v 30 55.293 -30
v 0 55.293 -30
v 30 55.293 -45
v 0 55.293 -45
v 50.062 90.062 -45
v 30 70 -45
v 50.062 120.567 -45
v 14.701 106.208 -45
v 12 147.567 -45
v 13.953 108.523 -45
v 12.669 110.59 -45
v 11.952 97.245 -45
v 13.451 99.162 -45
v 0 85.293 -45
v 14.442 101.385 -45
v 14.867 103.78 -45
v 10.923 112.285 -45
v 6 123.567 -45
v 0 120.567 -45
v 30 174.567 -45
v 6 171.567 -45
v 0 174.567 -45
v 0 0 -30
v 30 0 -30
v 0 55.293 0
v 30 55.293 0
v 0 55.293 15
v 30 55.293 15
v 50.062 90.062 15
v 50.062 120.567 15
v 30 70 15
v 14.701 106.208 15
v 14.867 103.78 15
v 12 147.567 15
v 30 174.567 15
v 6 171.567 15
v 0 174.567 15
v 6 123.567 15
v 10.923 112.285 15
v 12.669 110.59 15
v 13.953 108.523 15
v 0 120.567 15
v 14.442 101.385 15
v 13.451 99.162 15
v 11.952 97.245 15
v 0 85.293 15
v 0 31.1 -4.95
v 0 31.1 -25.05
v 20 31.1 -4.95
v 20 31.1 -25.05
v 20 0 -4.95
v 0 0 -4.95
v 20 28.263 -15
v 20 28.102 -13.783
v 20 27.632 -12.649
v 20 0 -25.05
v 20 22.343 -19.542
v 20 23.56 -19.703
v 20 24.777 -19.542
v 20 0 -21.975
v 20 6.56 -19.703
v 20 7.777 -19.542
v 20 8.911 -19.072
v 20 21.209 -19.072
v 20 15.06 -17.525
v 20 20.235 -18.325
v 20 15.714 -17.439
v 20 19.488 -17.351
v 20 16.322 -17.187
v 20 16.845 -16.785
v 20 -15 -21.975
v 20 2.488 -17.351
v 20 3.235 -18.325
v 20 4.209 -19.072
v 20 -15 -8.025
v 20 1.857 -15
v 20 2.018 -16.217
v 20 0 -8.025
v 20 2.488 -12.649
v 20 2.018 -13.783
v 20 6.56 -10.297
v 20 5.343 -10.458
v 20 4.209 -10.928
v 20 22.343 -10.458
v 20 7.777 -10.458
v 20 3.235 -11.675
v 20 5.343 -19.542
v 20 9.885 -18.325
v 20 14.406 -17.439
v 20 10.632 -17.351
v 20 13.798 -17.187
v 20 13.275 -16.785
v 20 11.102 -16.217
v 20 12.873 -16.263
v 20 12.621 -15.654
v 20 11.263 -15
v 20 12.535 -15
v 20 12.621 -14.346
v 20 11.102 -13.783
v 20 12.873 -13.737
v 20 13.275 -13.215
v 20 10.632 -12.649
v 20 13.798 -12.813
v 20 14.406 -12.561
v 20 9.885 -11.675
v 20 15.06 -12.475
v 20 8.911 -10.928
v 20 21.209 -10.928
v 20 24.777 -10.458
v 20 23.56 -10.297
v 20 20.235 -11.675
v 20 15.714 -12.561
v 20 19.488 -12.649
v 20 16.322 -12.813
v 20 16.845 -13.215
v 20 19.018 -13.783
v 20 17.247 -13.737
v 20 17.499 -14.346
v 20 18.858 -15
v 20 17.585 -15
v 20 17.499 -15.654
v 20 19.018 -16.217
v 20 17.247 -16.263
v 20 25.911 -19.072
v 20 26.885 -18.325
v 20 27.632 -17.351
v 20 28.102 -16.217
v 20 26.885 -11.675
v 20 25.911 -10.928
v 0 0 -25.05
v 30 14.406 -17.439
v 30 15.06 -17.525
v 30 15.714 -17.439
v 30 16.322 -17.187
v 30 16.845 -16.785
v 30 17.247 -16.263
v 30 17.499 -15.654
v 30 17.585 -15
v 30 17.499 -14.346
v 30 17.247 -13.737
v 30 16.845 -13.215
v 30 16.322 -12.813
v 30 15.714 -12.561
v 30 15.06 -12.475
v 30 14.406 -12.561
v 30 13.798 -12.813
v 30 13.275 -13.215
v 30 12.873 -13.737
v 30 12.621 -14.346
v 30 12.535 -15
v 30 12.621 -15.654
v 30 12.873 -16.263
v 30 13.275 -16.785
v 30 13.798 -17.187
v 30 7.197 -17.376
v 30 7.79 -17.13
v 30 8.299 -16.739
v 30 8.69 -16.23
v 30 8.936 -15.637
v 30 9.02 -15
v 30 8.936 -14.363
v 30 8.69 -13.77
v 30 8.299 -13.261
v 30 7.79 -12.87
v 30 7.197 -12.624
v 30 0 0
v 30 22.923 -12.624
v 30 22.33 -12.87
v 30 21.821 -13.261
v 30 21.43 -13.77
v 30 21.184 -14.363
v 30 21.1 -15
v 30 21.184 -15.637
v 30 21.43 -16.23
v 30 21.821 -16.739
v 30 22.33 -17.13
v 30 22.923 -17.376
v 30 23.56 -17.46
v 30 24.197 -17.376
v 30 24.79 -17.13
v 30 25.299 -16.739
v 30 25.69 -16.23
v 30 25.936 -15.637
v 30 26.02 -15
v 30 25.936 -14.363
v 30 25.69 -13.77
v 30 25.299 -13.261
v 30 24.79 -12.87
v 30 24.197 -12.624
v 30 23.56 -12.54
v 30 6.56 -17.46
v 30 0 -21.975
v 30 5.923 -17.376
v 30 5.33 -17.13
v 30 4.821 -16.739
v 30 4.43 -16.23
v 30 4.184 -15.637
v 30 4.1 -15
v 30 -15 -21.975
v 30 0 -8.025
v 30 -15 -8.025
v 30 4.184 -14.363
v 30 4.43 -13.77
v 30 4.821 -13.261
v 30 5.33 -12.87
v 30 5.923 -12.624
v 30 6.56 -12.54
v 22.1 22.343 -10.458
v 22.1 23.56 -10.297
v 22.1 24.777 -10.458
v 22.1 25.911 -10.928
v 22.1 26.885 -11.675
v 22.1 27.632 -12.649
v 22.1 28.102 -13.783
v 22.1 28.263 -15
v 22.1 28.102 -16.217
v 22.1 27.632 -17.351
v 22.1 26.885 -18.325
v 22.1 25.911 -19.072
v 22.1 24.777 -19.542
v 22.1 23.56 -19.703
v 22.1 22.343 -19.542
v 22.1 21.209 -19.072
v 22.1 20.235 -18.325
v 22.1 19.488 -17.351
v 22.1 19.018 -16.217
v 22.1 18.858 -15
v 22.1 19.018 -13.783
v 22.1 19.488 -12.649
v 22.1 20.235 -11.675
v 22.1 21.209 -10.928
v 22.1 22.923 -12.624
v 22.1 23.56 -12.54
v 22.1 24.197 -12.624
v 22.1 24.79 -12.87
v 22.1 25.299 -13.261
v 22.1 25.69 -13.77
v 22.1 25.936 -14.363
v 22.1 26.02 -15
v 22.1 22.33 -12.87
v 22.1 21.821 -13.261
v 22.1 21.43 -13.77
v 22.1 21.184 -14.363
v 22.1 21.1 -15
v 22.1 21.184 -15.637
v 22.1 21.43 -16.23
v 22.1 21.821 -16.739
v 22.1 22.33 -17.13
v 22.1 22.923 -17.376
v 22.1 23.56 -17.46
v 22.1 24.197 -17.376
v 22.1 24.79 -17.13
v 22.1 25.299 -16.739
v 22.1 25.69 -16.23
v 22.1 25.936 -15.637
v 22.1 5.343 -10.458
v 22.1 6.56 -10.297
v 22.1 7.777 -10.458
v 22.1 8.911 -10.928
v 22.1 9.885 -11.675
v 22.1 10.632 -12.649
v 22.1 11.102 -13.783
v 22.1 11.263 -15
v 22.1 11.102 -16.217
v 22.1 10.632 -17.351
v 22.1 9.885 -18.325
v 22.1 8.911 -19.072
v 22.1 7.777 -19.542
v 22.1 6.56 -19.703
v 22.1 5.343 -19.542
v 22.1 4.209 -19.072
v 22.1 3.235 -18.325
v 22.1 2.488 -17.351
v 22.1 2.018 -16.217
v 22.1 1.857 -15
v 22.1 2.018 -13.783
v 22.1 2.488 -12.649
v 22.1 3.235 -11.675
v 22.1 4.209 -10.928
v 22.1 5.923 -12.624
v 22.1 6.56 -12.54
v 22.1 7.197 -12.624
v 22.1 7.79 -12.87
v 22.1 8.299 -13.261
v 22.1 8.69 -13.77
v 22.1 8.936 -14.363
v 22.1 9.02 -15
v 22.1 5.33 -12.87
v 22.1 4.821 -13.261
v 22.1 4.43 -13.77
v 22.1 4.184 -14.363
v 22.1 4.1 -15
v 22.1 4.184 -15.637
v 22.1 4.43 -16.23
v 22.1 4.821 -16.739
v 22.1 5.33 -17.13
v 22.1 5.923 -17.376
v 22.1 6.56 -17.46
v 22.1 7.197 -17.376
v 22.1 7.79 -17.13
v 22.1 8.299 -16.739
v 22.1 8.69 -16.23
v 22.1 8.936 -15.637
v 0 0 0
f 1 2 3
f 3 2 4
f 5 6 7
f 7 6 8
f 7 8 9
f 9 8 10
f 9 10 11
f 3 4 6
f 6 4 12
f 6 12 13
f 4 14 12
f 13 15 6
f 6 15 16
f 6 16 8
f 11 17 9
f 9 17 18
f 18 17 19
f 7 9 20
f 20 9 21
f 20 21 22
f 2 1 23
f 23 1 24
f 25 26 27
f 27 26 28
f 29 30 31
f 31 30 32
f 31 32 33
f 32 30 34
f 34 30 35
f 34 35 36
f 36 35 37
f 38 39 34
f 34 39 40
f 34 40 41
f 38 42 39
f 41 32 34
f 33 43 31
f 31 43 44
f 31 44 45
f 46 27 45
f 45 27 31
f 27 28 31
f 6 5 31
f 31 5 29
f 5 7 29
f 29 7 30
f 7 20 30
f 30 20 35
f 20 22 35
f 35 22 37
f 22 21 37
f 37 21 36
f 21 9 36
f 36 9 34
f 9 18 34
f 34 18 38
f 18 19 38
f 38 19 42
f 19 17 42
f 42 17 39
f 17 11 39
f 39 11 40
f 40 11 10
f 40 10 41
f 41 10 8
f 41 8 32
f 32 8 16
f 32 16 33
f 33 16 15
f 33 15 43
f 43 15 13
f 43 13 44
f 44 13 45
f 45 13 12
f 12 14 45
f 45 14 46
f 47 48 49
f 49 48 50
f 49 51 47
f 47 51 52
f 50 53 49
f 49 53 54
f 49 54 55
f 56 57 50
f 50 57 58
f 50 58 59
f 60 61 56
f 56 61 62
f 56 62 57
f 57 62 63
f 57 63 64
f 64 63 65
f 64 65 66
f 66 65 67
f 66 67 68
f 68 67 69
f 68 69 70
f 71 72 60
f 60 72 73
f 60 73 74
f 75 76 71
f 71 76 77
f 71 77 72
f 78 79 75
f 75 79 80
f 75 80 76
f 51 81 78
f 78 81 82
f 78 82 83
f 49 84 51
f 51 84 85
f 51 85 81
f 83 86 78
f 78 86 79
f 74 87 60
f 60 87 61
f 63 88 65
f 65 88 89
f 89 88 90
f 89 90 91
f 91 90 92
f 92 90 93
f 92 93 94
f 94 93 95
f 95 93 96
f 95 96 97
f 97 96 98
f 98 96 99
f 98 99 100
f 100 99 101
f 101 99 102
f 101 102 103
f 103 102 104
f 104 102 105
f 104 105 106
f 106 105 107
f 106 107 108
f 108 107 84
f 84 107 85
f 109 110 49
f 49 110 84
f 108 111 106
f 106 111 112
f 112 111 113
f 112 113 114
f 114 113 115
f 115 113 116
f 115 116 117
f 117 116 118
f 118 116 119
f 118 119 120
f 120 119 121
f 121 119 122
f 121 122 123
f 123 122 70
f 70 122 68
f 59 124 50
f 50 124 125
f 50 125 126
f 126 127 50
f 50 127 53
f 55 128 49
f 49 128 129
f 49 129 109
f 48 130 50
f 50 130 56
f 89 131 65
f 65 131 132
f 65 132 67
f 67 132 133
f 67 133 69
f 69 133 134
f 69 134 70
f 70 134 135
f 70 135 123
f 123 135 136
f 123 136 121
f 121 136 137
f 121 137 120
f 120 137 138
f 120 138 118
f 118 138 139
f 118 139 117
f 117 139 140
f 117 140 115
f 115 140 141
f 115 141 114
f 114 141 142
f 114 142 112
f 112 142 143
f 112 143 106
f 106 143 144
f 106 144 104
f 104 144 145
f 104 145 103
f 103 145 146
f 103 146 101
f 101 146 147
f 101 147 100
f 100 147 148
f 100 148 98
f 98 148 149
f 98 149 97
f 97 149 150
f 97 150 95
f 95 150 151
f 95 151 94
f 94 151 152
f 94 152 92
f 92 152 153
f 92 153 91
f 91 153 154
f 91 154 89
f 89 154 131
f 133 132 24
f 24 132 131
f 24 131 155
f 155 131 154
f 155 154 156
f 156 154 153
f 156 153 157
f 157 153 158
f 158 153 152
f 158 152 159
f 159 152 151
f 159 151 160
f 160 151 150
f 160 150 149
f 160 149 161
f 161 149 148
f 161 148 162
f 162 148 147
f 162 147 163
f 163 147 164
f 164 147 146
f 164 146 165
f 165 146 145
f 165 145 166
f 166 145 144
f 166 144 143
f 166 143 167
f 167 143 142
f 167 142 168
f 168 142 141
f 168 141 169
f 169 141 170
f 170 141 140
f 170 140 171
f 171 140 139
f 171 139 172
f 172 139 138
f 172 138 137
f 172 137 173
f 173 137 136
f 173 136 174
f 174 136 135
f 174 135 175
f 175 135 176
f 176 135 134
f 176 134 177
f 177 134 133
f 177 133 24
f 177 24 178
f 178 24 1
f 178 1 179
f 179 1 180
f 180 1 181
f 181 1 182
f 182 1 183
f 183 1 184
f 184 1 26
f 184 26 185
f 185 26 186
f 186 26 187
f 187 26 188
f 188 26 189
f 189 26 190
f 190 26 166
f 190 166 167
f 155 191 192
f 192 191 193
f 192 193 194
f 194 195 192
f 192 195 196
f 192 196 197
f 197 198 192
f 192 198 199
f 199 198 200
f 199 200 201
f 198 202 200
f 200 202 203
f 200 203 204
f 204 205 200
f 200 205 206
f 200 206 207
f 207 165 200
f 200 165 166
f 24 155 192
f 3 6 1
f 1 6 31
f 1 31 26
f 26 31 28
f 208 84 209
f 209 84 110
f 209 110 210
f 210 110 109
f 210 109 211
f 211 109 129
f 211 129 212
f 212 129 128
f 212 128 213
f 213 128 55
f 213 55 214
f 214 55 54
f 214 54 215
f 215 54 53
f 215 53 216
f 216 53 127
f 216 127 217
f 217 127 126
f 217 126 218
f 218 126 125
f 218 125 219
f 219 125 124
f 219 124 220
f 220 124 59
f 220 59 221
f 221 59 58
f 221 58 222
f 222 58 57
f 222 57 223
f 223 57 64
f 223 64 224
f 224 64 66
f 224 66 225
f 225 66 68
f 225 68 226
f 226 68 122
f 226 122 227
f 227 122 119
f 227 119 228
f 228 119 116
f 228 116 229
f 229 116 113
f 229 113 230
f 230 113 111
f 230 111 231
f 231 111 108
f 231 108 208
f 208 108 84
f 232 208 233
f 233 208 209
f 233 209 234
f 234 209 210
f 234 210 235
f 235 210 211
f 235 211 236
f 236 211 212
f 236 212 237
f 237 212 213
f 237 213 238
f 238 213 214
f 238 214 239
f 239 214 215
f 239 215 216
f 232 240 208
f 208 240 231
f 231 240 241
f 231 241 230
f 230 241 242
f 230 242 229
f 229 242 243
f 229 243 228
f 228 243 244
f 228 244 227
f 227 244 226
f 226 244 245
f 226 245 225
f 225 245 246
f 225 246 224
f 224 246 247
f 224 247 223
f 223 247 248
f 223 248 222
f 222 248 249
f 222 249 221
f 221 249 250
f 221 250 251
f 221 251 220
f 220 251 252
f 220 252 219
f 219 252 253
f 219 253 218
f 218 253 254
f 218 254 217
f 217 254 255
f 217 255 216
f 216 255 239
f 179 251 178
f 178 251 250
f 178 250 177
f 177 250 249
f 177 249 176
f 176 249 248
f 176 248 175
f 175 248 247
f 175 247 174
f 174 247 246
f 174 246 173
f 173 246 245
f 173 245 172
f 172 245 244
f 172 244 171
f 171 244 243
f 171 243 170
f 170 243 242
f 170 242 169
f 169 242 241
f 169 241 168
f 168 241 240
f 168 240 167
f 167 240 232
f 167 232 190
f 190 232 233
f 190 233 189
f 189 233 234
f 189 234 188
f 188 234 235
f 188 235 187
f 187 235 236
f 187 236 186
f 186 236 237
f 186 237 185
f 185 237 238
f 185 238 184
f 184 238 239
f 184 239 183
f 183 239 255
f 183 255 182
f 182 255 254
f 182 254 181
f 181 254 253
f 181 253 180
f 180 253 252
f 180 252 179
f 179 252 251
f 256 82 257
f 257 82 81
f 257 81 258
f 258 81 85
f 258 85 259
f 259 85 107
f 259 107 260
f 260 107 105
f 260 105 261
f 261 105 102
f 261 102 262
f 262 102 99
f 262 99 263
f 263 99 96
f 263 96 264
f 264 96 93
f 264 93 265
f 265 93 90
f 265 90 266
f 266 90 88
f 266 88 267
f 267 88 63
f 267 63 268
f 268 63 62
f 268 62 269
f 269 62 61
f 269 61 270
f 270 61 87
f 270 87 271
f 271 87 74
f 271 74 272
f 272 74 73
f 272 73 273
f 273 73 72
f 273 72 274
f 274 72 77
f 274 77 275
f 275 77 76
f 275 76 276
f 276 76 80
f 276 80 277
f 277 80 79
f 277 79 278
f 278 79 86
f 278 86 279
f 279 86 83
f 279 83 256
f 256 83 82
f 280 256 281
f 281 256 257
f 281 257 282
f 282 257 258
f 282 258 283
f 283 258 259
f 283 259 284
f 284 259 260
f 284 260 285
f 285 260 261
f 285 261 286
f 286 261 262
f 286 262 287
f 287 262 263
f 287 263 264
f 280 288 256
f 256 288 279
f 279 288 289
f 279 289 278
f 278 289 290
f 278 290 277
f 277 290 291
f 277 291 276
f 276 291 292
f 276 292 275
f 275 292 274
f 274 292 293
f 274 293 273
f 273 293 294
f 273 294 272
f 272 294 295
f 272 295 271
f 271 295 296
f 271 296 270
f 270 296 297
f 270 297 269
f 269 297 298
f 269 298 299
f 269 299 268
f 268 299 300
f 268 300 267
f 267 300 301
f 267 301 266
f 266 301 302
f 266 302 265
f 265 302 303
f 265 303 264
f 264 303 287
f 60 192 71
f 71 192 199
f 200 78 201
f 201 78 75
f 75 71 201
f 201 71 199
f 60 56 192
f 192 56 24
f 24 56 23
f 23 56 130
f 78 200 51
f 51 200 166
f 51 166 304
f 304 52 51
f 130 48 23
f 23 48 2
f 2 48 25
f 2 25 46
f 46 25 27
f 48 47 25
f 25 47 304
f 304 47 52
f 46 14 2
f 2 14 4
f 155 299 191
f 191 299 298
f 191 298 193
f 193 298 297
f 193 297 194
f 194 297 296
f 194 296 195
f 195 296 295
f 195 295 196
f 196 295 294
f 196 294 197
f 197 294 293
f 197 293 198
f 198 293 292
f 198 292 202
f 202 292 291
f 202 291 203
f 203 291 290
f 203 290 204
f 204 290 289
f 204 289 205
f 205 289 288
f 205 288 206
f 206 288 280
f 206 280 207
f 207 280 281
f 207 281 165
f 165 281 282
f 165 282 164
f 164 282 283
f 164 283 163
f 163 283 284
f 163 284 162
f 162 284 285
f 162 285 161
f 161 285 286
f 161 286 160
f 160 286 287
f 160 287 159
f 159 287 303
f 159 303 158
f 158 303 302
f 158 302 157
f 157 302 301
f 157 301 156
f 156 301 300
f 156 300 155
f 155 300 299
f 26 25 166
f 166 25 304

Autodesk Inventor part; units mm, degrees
ref_plane "YZ Plane" through (0, 0, 0) normal (1, 0, 0) x (0, 1, 0)
ref_plane "XZ Plane" through (0, 0, 0) normal (0, 1, 0) x (-1, 0, 0)
sketch "Sketch1" plane through (0, 0, 0) normal (0, 0, 1) x (1, 0, 0)
  line L0 (0, 0) -> (25, 0)
  line L1 (25, 0) -> (25, 40)
  line L2 (25, 40) -> (0, 40)
  line L3 (0, 40) -> (0, 0)
  dimension "d1" = 25
  dimension "d2" = 40
  dimension "d3" = 25
extrude "Extrusion1" add sketch "Sketch1" against normal blind 30
sketch "Sketch2" plane through (25, 0, 0) normal (1, 0, 0) x (0, 0, -1)
  line L0 (0, 0) -> (30, 0) projected
  circle A0 centre (15, 6.56) radius 2.46
extrude "Extrusion2" cut sketch "Sketch2" against normal blind 30
sketch "Sketch3" plane through (0, 0, 0) normal (-1, 0, 0) x (0, 0, 1)
  line L0 (0, 0) -> (-30, 0) projected
  line L1 (-25.05, 0) -> (-4.95, 0)
  line L2 (-4.95, 0) -> (-4.95, 33.12)
  line L3 (-4.95, 33.12) -> (-25.05, 33.12)
  line L4 (-25.05, 33.12) -> (-25.05, 0)
  dimension "d11" = 20.1
extrude "Extrusion3" cut sketch "Sketch3" against normal blind 20
sketch "Sketch4" plane through (0, 0, 0) normal (0, -1, 0) x (1, 0, 0)
  line L0 (20, -4.95) -> (20, -25.05) projected
  line L1 (20, -15) -> (25, -15)
  line L2 (25, 0) -> (25, -30) projected
  line L3 (20, -8.025) -> (25, -8.025)
  line L4 (25, -8.025) -> (25, -21.975)
  line L5 (25, -21.975) -> (20, -21.975)
  line L6 (20, -21.975) -> (20, -8.025)
  line L7 (20, -8.025) -> (25, -21.975) construction
  line L8 (25, -8.025) -> (20, -21.975) construction
  line L9 (25, -12.54) -> (25, -17.46) projected
  point P0 (0, 0)
  point P1 (22.5, -15)
  dimension "d14" = 13.95
extrude "Extrusion4" add sketch "Sketch4" along normal blind 15
sketch "Sketch5" plane through (20, 0, 0) normal (-1, 0, 0) x (0, 0, 1)
  circle A0 centre (-15, 6.56) radius 2.46 projected
  circle A1 centre (-15, 6.56) radius 4.7025
  circle A2 centre (-15, 6.56) radius 2.46 projected
  circle A3 centre (-15, 6.56) radius 2.46
  point P0 (0, 0)
  dimension "d17" = 9.405
extrude "Extrusion5" cut sketch "Sketch5" against normal blind 2.1
sketch "Sketch6" plane through (25, 0, 0) normal (1, 0, 0) x (0, 0, -1)
  circle A0 centre (15, 6.56) radius 4.7025 projected
  line L0 (15, 6.56) -> (15, 23.56)
  circle A1 centre (15, 23.56) radius 2.46
  point P0 (0, 0)
  dimension "d20" = 17
  dimension "d21" = 4.92
extrude "Extrusion6" cut sketch "Sketch6" against normal blind 10 contours A1
sketch "Sketch7" plane through (20, 0, 0) normal (-1, 0, 0) x (0, 0, 1)
  circle A0 centre (-15, 23.56) radius 2.46 projected
  circle A1 centre (-15, 23.56) radius 4.7025
  point P0 (0, 0)
  dimension "d24" = 9.405
extrude "Extrusion7" cut sketch "Sketch7" against normal blind 2.1
sketch "Sketch9" plane through (25, 0, 0) normal (1, 0, 0) x (0, 0, -1)
  circle A0 centre (15, 6.56) radius 2.46 projected
  circle A1 centre (15, 6.56) radius 2.46
  circle A2 centre (15, 23.56) radius 2.46 projected
  circle A3 centre (15, 23.56) radius 2.46
  line L0 (30, 40) -> (30, 0) projected
  line L1 (30, 0) -> (30, 40)
  line L2 (30, 40) -> (0, 40)
  line L3 (0, 40) -> (0, 0)
  line L4 (0, 0) -> (8.025, 0) projected
  line L5 (21.975, 0) -> (21.975, -15)
  line L6 (21.975, -15) -> (8.025, -15)
  line L7 (8.025, -15) -> (8.025, 0)
  line L8 (0, 0) -> (8.025, 0)
  line L9 (21.975, 0) -> (30, 0)
extrude "Extrusion8" add sketch "Sketch9" along normal blind 5
sketch "Sketch10" plane through (0, 40, 0) normal (0, 1, 0) x (1, 0, 0)
  line L0 (0, 30) -> (30, 30) projected
  line L1 (30, 0) -> (0, 0) projected
  line L2 (0, 30) -> (30, 30)
  line L3 (30, 30) -> (30, 0)
  line L4 (30, 0) -> (0, 0)
  line L5 (0, 0) -> (0, 30)
extrude "Extrusion9" add sketch "Sketch10" along normal blind 30
sketch "Sketch12" plane through (30, 0, 0) normal (1, 0, 0) x (0, 0, -1)
  circle A0 centre (15, 6.56) radius 2.46 projected
  line L0 (15, 6.56) -> (15, 15.06)
  circle A1 centre (15, 15.06) radius 2.525
  point P0 (0, 0)
  dimension "d31" = 8.5
  dimension "d33" = 5.05
extrude "Extrusion10" cut sketch "Sketch12" against normal blind 30 contours A1
sketch "Sketch15" plane through (0, 0, -25.05) normal (-1, 0, 0) x (0, 0, 1)
  line L0 (0, 33.12) -> (20.1, 33.12) projected
  line L1 (20.1, 33.12) -> (20.1, 0) projected
  line L2 (0, 33.12) -> (20.1, 33.12)
  line L3 (20.1, 33.12) -> (20.1, 31.1)
  line L4 (20.1, 31.1) -> (0, 31.1)
  line L5 (0, 31.1) -> (0, 33.12)
  point P0 (25.05, 0)
  dimension "d57" = 2.02
extrude "Extrusion13" add sketch "Sketch15" against normal blind 20
sketch "Sketch17" plane through (0, 0, 0) normal (0, 0, 1) x (1, 0, 0)
  line L0 (0, 70) -> (30, 70) projected
  line L1 (30, 70) -> (50.0622, 90.0622)
  line L2 (30, 70) -> (80, 70) construction
  line L3 (11.9522, 97.2454) -> (0, 85.2932)
  line L4 (0, 70) -> (0, 85.2932)
  line L5 (0, 70) -> (0, 0) projected
  line L6 (0, 70) -> (30, 70)
  line L7 (10.923, 112.2849) -> (0, 120.567)
  line L8 (50.0622, 105.3553) -> (50.0622, 120.567)
  line L9 (50.0622, 105.3553) -> (50.0622, 90.0622)
  arc A0 (11.9522, 97.2454) -> (10.923, 112.2849) centre (4.8811, 104.3165) ccw
  line L10 (0, 174.567) -> (30, 174.567)
  line L11 (30, 174.567) -> (50.0622, 120.567)
  line L12 (6, 171.567) -> (0, 174.567)
  line L13 (6, 123.567) -> (0, 120.567)
  line L14 (6, 123.567) -> (12, 147.567)
  line L15 (6, 171.567) -> (12, 147.567)
  dimension "d61" = 45
  dimension "d62" = 32.0271
  dimension "d72" = 10
extrude "Extrusion14" add sketch "Sketch17" against normal blind 30
sketch "Sketch24" plane through (0, 0, 0) normal (0, 0, 1) x (1, 0, 0)
  line L0 (30, 70) -> (50.0622, 90.0622) projected
  line L1 (30, 70) -> (50.0622, 90.0622)
  line L2 (50.0622, 90.0622) -> (50.0622, 120.567) projected
  line L3 (50.0622, 90.0622) -> (50.0622, 120.567)
  line L4 (30, 174.567) -> (50.0622, 120.567) projected
  line L5 (50.0622, 120.567) -> (30, 174.567)
  line L6 (30, 174.567) -> (0, 174.567) projected
  line L7 (30, 174.567) -> (0, 174.567)
  line L8 (0, 174.567) -> (6, 171.567) projected
  line L9 (0, 174.567) -> (6, 171.567)
  line L10 (12, 147.567) -> (6, 171.567) projected
  line L11 (6, 171.567) -> (12, 147.567)
  line L12 (12, 147.567) -> (6, 123.567) projected
  line L13 (12, 147.567) -> (6, 123.567)
  line L14 (6, 123.567) -> (0, 120.567) projected
  line L15 (6, 123.567) -> (0, 120.567)
  line L16 (0, 120.567) -> (10.923, 112.2849) projected
  line L17 (0, 120.567) -> (10.923, 112.2849)
  line L18 (0, 85.2932) -> (11.9522, 97.2454) projected
  line L19 (11.9522, 97.2454) -> (0, 85.2932)
  line L20 (0, 85.2932) -> (0, 55.2932)
  line L21 (0, 0) -> (0, 85.2932) projected
  line L22 (0, 55.2932) -> (30, 55.2932)
  line L23 (30, 0) -> (30, 70) projected
  line L24 (30, 55.2932) -> (30, 70)
  arc A0 (11.9522, 97.2454) -> (10.923, 112.2849) centre (4.8811, 104.3165) ccw
  dimension "d106" = 30
extrude "Extrusion15" add sketch "Sketch24" along normal blind 15
ref_plane "Work Plane1" through (0, 0, -15) normal (0, 0, 1) x (1, 0, 0)
mirror "Mirror1" about plane through (0, 0, -15) normal (0, 0, 1) of "Extrusion15"
properties part number "rec_c_48mm_x_60mm"
